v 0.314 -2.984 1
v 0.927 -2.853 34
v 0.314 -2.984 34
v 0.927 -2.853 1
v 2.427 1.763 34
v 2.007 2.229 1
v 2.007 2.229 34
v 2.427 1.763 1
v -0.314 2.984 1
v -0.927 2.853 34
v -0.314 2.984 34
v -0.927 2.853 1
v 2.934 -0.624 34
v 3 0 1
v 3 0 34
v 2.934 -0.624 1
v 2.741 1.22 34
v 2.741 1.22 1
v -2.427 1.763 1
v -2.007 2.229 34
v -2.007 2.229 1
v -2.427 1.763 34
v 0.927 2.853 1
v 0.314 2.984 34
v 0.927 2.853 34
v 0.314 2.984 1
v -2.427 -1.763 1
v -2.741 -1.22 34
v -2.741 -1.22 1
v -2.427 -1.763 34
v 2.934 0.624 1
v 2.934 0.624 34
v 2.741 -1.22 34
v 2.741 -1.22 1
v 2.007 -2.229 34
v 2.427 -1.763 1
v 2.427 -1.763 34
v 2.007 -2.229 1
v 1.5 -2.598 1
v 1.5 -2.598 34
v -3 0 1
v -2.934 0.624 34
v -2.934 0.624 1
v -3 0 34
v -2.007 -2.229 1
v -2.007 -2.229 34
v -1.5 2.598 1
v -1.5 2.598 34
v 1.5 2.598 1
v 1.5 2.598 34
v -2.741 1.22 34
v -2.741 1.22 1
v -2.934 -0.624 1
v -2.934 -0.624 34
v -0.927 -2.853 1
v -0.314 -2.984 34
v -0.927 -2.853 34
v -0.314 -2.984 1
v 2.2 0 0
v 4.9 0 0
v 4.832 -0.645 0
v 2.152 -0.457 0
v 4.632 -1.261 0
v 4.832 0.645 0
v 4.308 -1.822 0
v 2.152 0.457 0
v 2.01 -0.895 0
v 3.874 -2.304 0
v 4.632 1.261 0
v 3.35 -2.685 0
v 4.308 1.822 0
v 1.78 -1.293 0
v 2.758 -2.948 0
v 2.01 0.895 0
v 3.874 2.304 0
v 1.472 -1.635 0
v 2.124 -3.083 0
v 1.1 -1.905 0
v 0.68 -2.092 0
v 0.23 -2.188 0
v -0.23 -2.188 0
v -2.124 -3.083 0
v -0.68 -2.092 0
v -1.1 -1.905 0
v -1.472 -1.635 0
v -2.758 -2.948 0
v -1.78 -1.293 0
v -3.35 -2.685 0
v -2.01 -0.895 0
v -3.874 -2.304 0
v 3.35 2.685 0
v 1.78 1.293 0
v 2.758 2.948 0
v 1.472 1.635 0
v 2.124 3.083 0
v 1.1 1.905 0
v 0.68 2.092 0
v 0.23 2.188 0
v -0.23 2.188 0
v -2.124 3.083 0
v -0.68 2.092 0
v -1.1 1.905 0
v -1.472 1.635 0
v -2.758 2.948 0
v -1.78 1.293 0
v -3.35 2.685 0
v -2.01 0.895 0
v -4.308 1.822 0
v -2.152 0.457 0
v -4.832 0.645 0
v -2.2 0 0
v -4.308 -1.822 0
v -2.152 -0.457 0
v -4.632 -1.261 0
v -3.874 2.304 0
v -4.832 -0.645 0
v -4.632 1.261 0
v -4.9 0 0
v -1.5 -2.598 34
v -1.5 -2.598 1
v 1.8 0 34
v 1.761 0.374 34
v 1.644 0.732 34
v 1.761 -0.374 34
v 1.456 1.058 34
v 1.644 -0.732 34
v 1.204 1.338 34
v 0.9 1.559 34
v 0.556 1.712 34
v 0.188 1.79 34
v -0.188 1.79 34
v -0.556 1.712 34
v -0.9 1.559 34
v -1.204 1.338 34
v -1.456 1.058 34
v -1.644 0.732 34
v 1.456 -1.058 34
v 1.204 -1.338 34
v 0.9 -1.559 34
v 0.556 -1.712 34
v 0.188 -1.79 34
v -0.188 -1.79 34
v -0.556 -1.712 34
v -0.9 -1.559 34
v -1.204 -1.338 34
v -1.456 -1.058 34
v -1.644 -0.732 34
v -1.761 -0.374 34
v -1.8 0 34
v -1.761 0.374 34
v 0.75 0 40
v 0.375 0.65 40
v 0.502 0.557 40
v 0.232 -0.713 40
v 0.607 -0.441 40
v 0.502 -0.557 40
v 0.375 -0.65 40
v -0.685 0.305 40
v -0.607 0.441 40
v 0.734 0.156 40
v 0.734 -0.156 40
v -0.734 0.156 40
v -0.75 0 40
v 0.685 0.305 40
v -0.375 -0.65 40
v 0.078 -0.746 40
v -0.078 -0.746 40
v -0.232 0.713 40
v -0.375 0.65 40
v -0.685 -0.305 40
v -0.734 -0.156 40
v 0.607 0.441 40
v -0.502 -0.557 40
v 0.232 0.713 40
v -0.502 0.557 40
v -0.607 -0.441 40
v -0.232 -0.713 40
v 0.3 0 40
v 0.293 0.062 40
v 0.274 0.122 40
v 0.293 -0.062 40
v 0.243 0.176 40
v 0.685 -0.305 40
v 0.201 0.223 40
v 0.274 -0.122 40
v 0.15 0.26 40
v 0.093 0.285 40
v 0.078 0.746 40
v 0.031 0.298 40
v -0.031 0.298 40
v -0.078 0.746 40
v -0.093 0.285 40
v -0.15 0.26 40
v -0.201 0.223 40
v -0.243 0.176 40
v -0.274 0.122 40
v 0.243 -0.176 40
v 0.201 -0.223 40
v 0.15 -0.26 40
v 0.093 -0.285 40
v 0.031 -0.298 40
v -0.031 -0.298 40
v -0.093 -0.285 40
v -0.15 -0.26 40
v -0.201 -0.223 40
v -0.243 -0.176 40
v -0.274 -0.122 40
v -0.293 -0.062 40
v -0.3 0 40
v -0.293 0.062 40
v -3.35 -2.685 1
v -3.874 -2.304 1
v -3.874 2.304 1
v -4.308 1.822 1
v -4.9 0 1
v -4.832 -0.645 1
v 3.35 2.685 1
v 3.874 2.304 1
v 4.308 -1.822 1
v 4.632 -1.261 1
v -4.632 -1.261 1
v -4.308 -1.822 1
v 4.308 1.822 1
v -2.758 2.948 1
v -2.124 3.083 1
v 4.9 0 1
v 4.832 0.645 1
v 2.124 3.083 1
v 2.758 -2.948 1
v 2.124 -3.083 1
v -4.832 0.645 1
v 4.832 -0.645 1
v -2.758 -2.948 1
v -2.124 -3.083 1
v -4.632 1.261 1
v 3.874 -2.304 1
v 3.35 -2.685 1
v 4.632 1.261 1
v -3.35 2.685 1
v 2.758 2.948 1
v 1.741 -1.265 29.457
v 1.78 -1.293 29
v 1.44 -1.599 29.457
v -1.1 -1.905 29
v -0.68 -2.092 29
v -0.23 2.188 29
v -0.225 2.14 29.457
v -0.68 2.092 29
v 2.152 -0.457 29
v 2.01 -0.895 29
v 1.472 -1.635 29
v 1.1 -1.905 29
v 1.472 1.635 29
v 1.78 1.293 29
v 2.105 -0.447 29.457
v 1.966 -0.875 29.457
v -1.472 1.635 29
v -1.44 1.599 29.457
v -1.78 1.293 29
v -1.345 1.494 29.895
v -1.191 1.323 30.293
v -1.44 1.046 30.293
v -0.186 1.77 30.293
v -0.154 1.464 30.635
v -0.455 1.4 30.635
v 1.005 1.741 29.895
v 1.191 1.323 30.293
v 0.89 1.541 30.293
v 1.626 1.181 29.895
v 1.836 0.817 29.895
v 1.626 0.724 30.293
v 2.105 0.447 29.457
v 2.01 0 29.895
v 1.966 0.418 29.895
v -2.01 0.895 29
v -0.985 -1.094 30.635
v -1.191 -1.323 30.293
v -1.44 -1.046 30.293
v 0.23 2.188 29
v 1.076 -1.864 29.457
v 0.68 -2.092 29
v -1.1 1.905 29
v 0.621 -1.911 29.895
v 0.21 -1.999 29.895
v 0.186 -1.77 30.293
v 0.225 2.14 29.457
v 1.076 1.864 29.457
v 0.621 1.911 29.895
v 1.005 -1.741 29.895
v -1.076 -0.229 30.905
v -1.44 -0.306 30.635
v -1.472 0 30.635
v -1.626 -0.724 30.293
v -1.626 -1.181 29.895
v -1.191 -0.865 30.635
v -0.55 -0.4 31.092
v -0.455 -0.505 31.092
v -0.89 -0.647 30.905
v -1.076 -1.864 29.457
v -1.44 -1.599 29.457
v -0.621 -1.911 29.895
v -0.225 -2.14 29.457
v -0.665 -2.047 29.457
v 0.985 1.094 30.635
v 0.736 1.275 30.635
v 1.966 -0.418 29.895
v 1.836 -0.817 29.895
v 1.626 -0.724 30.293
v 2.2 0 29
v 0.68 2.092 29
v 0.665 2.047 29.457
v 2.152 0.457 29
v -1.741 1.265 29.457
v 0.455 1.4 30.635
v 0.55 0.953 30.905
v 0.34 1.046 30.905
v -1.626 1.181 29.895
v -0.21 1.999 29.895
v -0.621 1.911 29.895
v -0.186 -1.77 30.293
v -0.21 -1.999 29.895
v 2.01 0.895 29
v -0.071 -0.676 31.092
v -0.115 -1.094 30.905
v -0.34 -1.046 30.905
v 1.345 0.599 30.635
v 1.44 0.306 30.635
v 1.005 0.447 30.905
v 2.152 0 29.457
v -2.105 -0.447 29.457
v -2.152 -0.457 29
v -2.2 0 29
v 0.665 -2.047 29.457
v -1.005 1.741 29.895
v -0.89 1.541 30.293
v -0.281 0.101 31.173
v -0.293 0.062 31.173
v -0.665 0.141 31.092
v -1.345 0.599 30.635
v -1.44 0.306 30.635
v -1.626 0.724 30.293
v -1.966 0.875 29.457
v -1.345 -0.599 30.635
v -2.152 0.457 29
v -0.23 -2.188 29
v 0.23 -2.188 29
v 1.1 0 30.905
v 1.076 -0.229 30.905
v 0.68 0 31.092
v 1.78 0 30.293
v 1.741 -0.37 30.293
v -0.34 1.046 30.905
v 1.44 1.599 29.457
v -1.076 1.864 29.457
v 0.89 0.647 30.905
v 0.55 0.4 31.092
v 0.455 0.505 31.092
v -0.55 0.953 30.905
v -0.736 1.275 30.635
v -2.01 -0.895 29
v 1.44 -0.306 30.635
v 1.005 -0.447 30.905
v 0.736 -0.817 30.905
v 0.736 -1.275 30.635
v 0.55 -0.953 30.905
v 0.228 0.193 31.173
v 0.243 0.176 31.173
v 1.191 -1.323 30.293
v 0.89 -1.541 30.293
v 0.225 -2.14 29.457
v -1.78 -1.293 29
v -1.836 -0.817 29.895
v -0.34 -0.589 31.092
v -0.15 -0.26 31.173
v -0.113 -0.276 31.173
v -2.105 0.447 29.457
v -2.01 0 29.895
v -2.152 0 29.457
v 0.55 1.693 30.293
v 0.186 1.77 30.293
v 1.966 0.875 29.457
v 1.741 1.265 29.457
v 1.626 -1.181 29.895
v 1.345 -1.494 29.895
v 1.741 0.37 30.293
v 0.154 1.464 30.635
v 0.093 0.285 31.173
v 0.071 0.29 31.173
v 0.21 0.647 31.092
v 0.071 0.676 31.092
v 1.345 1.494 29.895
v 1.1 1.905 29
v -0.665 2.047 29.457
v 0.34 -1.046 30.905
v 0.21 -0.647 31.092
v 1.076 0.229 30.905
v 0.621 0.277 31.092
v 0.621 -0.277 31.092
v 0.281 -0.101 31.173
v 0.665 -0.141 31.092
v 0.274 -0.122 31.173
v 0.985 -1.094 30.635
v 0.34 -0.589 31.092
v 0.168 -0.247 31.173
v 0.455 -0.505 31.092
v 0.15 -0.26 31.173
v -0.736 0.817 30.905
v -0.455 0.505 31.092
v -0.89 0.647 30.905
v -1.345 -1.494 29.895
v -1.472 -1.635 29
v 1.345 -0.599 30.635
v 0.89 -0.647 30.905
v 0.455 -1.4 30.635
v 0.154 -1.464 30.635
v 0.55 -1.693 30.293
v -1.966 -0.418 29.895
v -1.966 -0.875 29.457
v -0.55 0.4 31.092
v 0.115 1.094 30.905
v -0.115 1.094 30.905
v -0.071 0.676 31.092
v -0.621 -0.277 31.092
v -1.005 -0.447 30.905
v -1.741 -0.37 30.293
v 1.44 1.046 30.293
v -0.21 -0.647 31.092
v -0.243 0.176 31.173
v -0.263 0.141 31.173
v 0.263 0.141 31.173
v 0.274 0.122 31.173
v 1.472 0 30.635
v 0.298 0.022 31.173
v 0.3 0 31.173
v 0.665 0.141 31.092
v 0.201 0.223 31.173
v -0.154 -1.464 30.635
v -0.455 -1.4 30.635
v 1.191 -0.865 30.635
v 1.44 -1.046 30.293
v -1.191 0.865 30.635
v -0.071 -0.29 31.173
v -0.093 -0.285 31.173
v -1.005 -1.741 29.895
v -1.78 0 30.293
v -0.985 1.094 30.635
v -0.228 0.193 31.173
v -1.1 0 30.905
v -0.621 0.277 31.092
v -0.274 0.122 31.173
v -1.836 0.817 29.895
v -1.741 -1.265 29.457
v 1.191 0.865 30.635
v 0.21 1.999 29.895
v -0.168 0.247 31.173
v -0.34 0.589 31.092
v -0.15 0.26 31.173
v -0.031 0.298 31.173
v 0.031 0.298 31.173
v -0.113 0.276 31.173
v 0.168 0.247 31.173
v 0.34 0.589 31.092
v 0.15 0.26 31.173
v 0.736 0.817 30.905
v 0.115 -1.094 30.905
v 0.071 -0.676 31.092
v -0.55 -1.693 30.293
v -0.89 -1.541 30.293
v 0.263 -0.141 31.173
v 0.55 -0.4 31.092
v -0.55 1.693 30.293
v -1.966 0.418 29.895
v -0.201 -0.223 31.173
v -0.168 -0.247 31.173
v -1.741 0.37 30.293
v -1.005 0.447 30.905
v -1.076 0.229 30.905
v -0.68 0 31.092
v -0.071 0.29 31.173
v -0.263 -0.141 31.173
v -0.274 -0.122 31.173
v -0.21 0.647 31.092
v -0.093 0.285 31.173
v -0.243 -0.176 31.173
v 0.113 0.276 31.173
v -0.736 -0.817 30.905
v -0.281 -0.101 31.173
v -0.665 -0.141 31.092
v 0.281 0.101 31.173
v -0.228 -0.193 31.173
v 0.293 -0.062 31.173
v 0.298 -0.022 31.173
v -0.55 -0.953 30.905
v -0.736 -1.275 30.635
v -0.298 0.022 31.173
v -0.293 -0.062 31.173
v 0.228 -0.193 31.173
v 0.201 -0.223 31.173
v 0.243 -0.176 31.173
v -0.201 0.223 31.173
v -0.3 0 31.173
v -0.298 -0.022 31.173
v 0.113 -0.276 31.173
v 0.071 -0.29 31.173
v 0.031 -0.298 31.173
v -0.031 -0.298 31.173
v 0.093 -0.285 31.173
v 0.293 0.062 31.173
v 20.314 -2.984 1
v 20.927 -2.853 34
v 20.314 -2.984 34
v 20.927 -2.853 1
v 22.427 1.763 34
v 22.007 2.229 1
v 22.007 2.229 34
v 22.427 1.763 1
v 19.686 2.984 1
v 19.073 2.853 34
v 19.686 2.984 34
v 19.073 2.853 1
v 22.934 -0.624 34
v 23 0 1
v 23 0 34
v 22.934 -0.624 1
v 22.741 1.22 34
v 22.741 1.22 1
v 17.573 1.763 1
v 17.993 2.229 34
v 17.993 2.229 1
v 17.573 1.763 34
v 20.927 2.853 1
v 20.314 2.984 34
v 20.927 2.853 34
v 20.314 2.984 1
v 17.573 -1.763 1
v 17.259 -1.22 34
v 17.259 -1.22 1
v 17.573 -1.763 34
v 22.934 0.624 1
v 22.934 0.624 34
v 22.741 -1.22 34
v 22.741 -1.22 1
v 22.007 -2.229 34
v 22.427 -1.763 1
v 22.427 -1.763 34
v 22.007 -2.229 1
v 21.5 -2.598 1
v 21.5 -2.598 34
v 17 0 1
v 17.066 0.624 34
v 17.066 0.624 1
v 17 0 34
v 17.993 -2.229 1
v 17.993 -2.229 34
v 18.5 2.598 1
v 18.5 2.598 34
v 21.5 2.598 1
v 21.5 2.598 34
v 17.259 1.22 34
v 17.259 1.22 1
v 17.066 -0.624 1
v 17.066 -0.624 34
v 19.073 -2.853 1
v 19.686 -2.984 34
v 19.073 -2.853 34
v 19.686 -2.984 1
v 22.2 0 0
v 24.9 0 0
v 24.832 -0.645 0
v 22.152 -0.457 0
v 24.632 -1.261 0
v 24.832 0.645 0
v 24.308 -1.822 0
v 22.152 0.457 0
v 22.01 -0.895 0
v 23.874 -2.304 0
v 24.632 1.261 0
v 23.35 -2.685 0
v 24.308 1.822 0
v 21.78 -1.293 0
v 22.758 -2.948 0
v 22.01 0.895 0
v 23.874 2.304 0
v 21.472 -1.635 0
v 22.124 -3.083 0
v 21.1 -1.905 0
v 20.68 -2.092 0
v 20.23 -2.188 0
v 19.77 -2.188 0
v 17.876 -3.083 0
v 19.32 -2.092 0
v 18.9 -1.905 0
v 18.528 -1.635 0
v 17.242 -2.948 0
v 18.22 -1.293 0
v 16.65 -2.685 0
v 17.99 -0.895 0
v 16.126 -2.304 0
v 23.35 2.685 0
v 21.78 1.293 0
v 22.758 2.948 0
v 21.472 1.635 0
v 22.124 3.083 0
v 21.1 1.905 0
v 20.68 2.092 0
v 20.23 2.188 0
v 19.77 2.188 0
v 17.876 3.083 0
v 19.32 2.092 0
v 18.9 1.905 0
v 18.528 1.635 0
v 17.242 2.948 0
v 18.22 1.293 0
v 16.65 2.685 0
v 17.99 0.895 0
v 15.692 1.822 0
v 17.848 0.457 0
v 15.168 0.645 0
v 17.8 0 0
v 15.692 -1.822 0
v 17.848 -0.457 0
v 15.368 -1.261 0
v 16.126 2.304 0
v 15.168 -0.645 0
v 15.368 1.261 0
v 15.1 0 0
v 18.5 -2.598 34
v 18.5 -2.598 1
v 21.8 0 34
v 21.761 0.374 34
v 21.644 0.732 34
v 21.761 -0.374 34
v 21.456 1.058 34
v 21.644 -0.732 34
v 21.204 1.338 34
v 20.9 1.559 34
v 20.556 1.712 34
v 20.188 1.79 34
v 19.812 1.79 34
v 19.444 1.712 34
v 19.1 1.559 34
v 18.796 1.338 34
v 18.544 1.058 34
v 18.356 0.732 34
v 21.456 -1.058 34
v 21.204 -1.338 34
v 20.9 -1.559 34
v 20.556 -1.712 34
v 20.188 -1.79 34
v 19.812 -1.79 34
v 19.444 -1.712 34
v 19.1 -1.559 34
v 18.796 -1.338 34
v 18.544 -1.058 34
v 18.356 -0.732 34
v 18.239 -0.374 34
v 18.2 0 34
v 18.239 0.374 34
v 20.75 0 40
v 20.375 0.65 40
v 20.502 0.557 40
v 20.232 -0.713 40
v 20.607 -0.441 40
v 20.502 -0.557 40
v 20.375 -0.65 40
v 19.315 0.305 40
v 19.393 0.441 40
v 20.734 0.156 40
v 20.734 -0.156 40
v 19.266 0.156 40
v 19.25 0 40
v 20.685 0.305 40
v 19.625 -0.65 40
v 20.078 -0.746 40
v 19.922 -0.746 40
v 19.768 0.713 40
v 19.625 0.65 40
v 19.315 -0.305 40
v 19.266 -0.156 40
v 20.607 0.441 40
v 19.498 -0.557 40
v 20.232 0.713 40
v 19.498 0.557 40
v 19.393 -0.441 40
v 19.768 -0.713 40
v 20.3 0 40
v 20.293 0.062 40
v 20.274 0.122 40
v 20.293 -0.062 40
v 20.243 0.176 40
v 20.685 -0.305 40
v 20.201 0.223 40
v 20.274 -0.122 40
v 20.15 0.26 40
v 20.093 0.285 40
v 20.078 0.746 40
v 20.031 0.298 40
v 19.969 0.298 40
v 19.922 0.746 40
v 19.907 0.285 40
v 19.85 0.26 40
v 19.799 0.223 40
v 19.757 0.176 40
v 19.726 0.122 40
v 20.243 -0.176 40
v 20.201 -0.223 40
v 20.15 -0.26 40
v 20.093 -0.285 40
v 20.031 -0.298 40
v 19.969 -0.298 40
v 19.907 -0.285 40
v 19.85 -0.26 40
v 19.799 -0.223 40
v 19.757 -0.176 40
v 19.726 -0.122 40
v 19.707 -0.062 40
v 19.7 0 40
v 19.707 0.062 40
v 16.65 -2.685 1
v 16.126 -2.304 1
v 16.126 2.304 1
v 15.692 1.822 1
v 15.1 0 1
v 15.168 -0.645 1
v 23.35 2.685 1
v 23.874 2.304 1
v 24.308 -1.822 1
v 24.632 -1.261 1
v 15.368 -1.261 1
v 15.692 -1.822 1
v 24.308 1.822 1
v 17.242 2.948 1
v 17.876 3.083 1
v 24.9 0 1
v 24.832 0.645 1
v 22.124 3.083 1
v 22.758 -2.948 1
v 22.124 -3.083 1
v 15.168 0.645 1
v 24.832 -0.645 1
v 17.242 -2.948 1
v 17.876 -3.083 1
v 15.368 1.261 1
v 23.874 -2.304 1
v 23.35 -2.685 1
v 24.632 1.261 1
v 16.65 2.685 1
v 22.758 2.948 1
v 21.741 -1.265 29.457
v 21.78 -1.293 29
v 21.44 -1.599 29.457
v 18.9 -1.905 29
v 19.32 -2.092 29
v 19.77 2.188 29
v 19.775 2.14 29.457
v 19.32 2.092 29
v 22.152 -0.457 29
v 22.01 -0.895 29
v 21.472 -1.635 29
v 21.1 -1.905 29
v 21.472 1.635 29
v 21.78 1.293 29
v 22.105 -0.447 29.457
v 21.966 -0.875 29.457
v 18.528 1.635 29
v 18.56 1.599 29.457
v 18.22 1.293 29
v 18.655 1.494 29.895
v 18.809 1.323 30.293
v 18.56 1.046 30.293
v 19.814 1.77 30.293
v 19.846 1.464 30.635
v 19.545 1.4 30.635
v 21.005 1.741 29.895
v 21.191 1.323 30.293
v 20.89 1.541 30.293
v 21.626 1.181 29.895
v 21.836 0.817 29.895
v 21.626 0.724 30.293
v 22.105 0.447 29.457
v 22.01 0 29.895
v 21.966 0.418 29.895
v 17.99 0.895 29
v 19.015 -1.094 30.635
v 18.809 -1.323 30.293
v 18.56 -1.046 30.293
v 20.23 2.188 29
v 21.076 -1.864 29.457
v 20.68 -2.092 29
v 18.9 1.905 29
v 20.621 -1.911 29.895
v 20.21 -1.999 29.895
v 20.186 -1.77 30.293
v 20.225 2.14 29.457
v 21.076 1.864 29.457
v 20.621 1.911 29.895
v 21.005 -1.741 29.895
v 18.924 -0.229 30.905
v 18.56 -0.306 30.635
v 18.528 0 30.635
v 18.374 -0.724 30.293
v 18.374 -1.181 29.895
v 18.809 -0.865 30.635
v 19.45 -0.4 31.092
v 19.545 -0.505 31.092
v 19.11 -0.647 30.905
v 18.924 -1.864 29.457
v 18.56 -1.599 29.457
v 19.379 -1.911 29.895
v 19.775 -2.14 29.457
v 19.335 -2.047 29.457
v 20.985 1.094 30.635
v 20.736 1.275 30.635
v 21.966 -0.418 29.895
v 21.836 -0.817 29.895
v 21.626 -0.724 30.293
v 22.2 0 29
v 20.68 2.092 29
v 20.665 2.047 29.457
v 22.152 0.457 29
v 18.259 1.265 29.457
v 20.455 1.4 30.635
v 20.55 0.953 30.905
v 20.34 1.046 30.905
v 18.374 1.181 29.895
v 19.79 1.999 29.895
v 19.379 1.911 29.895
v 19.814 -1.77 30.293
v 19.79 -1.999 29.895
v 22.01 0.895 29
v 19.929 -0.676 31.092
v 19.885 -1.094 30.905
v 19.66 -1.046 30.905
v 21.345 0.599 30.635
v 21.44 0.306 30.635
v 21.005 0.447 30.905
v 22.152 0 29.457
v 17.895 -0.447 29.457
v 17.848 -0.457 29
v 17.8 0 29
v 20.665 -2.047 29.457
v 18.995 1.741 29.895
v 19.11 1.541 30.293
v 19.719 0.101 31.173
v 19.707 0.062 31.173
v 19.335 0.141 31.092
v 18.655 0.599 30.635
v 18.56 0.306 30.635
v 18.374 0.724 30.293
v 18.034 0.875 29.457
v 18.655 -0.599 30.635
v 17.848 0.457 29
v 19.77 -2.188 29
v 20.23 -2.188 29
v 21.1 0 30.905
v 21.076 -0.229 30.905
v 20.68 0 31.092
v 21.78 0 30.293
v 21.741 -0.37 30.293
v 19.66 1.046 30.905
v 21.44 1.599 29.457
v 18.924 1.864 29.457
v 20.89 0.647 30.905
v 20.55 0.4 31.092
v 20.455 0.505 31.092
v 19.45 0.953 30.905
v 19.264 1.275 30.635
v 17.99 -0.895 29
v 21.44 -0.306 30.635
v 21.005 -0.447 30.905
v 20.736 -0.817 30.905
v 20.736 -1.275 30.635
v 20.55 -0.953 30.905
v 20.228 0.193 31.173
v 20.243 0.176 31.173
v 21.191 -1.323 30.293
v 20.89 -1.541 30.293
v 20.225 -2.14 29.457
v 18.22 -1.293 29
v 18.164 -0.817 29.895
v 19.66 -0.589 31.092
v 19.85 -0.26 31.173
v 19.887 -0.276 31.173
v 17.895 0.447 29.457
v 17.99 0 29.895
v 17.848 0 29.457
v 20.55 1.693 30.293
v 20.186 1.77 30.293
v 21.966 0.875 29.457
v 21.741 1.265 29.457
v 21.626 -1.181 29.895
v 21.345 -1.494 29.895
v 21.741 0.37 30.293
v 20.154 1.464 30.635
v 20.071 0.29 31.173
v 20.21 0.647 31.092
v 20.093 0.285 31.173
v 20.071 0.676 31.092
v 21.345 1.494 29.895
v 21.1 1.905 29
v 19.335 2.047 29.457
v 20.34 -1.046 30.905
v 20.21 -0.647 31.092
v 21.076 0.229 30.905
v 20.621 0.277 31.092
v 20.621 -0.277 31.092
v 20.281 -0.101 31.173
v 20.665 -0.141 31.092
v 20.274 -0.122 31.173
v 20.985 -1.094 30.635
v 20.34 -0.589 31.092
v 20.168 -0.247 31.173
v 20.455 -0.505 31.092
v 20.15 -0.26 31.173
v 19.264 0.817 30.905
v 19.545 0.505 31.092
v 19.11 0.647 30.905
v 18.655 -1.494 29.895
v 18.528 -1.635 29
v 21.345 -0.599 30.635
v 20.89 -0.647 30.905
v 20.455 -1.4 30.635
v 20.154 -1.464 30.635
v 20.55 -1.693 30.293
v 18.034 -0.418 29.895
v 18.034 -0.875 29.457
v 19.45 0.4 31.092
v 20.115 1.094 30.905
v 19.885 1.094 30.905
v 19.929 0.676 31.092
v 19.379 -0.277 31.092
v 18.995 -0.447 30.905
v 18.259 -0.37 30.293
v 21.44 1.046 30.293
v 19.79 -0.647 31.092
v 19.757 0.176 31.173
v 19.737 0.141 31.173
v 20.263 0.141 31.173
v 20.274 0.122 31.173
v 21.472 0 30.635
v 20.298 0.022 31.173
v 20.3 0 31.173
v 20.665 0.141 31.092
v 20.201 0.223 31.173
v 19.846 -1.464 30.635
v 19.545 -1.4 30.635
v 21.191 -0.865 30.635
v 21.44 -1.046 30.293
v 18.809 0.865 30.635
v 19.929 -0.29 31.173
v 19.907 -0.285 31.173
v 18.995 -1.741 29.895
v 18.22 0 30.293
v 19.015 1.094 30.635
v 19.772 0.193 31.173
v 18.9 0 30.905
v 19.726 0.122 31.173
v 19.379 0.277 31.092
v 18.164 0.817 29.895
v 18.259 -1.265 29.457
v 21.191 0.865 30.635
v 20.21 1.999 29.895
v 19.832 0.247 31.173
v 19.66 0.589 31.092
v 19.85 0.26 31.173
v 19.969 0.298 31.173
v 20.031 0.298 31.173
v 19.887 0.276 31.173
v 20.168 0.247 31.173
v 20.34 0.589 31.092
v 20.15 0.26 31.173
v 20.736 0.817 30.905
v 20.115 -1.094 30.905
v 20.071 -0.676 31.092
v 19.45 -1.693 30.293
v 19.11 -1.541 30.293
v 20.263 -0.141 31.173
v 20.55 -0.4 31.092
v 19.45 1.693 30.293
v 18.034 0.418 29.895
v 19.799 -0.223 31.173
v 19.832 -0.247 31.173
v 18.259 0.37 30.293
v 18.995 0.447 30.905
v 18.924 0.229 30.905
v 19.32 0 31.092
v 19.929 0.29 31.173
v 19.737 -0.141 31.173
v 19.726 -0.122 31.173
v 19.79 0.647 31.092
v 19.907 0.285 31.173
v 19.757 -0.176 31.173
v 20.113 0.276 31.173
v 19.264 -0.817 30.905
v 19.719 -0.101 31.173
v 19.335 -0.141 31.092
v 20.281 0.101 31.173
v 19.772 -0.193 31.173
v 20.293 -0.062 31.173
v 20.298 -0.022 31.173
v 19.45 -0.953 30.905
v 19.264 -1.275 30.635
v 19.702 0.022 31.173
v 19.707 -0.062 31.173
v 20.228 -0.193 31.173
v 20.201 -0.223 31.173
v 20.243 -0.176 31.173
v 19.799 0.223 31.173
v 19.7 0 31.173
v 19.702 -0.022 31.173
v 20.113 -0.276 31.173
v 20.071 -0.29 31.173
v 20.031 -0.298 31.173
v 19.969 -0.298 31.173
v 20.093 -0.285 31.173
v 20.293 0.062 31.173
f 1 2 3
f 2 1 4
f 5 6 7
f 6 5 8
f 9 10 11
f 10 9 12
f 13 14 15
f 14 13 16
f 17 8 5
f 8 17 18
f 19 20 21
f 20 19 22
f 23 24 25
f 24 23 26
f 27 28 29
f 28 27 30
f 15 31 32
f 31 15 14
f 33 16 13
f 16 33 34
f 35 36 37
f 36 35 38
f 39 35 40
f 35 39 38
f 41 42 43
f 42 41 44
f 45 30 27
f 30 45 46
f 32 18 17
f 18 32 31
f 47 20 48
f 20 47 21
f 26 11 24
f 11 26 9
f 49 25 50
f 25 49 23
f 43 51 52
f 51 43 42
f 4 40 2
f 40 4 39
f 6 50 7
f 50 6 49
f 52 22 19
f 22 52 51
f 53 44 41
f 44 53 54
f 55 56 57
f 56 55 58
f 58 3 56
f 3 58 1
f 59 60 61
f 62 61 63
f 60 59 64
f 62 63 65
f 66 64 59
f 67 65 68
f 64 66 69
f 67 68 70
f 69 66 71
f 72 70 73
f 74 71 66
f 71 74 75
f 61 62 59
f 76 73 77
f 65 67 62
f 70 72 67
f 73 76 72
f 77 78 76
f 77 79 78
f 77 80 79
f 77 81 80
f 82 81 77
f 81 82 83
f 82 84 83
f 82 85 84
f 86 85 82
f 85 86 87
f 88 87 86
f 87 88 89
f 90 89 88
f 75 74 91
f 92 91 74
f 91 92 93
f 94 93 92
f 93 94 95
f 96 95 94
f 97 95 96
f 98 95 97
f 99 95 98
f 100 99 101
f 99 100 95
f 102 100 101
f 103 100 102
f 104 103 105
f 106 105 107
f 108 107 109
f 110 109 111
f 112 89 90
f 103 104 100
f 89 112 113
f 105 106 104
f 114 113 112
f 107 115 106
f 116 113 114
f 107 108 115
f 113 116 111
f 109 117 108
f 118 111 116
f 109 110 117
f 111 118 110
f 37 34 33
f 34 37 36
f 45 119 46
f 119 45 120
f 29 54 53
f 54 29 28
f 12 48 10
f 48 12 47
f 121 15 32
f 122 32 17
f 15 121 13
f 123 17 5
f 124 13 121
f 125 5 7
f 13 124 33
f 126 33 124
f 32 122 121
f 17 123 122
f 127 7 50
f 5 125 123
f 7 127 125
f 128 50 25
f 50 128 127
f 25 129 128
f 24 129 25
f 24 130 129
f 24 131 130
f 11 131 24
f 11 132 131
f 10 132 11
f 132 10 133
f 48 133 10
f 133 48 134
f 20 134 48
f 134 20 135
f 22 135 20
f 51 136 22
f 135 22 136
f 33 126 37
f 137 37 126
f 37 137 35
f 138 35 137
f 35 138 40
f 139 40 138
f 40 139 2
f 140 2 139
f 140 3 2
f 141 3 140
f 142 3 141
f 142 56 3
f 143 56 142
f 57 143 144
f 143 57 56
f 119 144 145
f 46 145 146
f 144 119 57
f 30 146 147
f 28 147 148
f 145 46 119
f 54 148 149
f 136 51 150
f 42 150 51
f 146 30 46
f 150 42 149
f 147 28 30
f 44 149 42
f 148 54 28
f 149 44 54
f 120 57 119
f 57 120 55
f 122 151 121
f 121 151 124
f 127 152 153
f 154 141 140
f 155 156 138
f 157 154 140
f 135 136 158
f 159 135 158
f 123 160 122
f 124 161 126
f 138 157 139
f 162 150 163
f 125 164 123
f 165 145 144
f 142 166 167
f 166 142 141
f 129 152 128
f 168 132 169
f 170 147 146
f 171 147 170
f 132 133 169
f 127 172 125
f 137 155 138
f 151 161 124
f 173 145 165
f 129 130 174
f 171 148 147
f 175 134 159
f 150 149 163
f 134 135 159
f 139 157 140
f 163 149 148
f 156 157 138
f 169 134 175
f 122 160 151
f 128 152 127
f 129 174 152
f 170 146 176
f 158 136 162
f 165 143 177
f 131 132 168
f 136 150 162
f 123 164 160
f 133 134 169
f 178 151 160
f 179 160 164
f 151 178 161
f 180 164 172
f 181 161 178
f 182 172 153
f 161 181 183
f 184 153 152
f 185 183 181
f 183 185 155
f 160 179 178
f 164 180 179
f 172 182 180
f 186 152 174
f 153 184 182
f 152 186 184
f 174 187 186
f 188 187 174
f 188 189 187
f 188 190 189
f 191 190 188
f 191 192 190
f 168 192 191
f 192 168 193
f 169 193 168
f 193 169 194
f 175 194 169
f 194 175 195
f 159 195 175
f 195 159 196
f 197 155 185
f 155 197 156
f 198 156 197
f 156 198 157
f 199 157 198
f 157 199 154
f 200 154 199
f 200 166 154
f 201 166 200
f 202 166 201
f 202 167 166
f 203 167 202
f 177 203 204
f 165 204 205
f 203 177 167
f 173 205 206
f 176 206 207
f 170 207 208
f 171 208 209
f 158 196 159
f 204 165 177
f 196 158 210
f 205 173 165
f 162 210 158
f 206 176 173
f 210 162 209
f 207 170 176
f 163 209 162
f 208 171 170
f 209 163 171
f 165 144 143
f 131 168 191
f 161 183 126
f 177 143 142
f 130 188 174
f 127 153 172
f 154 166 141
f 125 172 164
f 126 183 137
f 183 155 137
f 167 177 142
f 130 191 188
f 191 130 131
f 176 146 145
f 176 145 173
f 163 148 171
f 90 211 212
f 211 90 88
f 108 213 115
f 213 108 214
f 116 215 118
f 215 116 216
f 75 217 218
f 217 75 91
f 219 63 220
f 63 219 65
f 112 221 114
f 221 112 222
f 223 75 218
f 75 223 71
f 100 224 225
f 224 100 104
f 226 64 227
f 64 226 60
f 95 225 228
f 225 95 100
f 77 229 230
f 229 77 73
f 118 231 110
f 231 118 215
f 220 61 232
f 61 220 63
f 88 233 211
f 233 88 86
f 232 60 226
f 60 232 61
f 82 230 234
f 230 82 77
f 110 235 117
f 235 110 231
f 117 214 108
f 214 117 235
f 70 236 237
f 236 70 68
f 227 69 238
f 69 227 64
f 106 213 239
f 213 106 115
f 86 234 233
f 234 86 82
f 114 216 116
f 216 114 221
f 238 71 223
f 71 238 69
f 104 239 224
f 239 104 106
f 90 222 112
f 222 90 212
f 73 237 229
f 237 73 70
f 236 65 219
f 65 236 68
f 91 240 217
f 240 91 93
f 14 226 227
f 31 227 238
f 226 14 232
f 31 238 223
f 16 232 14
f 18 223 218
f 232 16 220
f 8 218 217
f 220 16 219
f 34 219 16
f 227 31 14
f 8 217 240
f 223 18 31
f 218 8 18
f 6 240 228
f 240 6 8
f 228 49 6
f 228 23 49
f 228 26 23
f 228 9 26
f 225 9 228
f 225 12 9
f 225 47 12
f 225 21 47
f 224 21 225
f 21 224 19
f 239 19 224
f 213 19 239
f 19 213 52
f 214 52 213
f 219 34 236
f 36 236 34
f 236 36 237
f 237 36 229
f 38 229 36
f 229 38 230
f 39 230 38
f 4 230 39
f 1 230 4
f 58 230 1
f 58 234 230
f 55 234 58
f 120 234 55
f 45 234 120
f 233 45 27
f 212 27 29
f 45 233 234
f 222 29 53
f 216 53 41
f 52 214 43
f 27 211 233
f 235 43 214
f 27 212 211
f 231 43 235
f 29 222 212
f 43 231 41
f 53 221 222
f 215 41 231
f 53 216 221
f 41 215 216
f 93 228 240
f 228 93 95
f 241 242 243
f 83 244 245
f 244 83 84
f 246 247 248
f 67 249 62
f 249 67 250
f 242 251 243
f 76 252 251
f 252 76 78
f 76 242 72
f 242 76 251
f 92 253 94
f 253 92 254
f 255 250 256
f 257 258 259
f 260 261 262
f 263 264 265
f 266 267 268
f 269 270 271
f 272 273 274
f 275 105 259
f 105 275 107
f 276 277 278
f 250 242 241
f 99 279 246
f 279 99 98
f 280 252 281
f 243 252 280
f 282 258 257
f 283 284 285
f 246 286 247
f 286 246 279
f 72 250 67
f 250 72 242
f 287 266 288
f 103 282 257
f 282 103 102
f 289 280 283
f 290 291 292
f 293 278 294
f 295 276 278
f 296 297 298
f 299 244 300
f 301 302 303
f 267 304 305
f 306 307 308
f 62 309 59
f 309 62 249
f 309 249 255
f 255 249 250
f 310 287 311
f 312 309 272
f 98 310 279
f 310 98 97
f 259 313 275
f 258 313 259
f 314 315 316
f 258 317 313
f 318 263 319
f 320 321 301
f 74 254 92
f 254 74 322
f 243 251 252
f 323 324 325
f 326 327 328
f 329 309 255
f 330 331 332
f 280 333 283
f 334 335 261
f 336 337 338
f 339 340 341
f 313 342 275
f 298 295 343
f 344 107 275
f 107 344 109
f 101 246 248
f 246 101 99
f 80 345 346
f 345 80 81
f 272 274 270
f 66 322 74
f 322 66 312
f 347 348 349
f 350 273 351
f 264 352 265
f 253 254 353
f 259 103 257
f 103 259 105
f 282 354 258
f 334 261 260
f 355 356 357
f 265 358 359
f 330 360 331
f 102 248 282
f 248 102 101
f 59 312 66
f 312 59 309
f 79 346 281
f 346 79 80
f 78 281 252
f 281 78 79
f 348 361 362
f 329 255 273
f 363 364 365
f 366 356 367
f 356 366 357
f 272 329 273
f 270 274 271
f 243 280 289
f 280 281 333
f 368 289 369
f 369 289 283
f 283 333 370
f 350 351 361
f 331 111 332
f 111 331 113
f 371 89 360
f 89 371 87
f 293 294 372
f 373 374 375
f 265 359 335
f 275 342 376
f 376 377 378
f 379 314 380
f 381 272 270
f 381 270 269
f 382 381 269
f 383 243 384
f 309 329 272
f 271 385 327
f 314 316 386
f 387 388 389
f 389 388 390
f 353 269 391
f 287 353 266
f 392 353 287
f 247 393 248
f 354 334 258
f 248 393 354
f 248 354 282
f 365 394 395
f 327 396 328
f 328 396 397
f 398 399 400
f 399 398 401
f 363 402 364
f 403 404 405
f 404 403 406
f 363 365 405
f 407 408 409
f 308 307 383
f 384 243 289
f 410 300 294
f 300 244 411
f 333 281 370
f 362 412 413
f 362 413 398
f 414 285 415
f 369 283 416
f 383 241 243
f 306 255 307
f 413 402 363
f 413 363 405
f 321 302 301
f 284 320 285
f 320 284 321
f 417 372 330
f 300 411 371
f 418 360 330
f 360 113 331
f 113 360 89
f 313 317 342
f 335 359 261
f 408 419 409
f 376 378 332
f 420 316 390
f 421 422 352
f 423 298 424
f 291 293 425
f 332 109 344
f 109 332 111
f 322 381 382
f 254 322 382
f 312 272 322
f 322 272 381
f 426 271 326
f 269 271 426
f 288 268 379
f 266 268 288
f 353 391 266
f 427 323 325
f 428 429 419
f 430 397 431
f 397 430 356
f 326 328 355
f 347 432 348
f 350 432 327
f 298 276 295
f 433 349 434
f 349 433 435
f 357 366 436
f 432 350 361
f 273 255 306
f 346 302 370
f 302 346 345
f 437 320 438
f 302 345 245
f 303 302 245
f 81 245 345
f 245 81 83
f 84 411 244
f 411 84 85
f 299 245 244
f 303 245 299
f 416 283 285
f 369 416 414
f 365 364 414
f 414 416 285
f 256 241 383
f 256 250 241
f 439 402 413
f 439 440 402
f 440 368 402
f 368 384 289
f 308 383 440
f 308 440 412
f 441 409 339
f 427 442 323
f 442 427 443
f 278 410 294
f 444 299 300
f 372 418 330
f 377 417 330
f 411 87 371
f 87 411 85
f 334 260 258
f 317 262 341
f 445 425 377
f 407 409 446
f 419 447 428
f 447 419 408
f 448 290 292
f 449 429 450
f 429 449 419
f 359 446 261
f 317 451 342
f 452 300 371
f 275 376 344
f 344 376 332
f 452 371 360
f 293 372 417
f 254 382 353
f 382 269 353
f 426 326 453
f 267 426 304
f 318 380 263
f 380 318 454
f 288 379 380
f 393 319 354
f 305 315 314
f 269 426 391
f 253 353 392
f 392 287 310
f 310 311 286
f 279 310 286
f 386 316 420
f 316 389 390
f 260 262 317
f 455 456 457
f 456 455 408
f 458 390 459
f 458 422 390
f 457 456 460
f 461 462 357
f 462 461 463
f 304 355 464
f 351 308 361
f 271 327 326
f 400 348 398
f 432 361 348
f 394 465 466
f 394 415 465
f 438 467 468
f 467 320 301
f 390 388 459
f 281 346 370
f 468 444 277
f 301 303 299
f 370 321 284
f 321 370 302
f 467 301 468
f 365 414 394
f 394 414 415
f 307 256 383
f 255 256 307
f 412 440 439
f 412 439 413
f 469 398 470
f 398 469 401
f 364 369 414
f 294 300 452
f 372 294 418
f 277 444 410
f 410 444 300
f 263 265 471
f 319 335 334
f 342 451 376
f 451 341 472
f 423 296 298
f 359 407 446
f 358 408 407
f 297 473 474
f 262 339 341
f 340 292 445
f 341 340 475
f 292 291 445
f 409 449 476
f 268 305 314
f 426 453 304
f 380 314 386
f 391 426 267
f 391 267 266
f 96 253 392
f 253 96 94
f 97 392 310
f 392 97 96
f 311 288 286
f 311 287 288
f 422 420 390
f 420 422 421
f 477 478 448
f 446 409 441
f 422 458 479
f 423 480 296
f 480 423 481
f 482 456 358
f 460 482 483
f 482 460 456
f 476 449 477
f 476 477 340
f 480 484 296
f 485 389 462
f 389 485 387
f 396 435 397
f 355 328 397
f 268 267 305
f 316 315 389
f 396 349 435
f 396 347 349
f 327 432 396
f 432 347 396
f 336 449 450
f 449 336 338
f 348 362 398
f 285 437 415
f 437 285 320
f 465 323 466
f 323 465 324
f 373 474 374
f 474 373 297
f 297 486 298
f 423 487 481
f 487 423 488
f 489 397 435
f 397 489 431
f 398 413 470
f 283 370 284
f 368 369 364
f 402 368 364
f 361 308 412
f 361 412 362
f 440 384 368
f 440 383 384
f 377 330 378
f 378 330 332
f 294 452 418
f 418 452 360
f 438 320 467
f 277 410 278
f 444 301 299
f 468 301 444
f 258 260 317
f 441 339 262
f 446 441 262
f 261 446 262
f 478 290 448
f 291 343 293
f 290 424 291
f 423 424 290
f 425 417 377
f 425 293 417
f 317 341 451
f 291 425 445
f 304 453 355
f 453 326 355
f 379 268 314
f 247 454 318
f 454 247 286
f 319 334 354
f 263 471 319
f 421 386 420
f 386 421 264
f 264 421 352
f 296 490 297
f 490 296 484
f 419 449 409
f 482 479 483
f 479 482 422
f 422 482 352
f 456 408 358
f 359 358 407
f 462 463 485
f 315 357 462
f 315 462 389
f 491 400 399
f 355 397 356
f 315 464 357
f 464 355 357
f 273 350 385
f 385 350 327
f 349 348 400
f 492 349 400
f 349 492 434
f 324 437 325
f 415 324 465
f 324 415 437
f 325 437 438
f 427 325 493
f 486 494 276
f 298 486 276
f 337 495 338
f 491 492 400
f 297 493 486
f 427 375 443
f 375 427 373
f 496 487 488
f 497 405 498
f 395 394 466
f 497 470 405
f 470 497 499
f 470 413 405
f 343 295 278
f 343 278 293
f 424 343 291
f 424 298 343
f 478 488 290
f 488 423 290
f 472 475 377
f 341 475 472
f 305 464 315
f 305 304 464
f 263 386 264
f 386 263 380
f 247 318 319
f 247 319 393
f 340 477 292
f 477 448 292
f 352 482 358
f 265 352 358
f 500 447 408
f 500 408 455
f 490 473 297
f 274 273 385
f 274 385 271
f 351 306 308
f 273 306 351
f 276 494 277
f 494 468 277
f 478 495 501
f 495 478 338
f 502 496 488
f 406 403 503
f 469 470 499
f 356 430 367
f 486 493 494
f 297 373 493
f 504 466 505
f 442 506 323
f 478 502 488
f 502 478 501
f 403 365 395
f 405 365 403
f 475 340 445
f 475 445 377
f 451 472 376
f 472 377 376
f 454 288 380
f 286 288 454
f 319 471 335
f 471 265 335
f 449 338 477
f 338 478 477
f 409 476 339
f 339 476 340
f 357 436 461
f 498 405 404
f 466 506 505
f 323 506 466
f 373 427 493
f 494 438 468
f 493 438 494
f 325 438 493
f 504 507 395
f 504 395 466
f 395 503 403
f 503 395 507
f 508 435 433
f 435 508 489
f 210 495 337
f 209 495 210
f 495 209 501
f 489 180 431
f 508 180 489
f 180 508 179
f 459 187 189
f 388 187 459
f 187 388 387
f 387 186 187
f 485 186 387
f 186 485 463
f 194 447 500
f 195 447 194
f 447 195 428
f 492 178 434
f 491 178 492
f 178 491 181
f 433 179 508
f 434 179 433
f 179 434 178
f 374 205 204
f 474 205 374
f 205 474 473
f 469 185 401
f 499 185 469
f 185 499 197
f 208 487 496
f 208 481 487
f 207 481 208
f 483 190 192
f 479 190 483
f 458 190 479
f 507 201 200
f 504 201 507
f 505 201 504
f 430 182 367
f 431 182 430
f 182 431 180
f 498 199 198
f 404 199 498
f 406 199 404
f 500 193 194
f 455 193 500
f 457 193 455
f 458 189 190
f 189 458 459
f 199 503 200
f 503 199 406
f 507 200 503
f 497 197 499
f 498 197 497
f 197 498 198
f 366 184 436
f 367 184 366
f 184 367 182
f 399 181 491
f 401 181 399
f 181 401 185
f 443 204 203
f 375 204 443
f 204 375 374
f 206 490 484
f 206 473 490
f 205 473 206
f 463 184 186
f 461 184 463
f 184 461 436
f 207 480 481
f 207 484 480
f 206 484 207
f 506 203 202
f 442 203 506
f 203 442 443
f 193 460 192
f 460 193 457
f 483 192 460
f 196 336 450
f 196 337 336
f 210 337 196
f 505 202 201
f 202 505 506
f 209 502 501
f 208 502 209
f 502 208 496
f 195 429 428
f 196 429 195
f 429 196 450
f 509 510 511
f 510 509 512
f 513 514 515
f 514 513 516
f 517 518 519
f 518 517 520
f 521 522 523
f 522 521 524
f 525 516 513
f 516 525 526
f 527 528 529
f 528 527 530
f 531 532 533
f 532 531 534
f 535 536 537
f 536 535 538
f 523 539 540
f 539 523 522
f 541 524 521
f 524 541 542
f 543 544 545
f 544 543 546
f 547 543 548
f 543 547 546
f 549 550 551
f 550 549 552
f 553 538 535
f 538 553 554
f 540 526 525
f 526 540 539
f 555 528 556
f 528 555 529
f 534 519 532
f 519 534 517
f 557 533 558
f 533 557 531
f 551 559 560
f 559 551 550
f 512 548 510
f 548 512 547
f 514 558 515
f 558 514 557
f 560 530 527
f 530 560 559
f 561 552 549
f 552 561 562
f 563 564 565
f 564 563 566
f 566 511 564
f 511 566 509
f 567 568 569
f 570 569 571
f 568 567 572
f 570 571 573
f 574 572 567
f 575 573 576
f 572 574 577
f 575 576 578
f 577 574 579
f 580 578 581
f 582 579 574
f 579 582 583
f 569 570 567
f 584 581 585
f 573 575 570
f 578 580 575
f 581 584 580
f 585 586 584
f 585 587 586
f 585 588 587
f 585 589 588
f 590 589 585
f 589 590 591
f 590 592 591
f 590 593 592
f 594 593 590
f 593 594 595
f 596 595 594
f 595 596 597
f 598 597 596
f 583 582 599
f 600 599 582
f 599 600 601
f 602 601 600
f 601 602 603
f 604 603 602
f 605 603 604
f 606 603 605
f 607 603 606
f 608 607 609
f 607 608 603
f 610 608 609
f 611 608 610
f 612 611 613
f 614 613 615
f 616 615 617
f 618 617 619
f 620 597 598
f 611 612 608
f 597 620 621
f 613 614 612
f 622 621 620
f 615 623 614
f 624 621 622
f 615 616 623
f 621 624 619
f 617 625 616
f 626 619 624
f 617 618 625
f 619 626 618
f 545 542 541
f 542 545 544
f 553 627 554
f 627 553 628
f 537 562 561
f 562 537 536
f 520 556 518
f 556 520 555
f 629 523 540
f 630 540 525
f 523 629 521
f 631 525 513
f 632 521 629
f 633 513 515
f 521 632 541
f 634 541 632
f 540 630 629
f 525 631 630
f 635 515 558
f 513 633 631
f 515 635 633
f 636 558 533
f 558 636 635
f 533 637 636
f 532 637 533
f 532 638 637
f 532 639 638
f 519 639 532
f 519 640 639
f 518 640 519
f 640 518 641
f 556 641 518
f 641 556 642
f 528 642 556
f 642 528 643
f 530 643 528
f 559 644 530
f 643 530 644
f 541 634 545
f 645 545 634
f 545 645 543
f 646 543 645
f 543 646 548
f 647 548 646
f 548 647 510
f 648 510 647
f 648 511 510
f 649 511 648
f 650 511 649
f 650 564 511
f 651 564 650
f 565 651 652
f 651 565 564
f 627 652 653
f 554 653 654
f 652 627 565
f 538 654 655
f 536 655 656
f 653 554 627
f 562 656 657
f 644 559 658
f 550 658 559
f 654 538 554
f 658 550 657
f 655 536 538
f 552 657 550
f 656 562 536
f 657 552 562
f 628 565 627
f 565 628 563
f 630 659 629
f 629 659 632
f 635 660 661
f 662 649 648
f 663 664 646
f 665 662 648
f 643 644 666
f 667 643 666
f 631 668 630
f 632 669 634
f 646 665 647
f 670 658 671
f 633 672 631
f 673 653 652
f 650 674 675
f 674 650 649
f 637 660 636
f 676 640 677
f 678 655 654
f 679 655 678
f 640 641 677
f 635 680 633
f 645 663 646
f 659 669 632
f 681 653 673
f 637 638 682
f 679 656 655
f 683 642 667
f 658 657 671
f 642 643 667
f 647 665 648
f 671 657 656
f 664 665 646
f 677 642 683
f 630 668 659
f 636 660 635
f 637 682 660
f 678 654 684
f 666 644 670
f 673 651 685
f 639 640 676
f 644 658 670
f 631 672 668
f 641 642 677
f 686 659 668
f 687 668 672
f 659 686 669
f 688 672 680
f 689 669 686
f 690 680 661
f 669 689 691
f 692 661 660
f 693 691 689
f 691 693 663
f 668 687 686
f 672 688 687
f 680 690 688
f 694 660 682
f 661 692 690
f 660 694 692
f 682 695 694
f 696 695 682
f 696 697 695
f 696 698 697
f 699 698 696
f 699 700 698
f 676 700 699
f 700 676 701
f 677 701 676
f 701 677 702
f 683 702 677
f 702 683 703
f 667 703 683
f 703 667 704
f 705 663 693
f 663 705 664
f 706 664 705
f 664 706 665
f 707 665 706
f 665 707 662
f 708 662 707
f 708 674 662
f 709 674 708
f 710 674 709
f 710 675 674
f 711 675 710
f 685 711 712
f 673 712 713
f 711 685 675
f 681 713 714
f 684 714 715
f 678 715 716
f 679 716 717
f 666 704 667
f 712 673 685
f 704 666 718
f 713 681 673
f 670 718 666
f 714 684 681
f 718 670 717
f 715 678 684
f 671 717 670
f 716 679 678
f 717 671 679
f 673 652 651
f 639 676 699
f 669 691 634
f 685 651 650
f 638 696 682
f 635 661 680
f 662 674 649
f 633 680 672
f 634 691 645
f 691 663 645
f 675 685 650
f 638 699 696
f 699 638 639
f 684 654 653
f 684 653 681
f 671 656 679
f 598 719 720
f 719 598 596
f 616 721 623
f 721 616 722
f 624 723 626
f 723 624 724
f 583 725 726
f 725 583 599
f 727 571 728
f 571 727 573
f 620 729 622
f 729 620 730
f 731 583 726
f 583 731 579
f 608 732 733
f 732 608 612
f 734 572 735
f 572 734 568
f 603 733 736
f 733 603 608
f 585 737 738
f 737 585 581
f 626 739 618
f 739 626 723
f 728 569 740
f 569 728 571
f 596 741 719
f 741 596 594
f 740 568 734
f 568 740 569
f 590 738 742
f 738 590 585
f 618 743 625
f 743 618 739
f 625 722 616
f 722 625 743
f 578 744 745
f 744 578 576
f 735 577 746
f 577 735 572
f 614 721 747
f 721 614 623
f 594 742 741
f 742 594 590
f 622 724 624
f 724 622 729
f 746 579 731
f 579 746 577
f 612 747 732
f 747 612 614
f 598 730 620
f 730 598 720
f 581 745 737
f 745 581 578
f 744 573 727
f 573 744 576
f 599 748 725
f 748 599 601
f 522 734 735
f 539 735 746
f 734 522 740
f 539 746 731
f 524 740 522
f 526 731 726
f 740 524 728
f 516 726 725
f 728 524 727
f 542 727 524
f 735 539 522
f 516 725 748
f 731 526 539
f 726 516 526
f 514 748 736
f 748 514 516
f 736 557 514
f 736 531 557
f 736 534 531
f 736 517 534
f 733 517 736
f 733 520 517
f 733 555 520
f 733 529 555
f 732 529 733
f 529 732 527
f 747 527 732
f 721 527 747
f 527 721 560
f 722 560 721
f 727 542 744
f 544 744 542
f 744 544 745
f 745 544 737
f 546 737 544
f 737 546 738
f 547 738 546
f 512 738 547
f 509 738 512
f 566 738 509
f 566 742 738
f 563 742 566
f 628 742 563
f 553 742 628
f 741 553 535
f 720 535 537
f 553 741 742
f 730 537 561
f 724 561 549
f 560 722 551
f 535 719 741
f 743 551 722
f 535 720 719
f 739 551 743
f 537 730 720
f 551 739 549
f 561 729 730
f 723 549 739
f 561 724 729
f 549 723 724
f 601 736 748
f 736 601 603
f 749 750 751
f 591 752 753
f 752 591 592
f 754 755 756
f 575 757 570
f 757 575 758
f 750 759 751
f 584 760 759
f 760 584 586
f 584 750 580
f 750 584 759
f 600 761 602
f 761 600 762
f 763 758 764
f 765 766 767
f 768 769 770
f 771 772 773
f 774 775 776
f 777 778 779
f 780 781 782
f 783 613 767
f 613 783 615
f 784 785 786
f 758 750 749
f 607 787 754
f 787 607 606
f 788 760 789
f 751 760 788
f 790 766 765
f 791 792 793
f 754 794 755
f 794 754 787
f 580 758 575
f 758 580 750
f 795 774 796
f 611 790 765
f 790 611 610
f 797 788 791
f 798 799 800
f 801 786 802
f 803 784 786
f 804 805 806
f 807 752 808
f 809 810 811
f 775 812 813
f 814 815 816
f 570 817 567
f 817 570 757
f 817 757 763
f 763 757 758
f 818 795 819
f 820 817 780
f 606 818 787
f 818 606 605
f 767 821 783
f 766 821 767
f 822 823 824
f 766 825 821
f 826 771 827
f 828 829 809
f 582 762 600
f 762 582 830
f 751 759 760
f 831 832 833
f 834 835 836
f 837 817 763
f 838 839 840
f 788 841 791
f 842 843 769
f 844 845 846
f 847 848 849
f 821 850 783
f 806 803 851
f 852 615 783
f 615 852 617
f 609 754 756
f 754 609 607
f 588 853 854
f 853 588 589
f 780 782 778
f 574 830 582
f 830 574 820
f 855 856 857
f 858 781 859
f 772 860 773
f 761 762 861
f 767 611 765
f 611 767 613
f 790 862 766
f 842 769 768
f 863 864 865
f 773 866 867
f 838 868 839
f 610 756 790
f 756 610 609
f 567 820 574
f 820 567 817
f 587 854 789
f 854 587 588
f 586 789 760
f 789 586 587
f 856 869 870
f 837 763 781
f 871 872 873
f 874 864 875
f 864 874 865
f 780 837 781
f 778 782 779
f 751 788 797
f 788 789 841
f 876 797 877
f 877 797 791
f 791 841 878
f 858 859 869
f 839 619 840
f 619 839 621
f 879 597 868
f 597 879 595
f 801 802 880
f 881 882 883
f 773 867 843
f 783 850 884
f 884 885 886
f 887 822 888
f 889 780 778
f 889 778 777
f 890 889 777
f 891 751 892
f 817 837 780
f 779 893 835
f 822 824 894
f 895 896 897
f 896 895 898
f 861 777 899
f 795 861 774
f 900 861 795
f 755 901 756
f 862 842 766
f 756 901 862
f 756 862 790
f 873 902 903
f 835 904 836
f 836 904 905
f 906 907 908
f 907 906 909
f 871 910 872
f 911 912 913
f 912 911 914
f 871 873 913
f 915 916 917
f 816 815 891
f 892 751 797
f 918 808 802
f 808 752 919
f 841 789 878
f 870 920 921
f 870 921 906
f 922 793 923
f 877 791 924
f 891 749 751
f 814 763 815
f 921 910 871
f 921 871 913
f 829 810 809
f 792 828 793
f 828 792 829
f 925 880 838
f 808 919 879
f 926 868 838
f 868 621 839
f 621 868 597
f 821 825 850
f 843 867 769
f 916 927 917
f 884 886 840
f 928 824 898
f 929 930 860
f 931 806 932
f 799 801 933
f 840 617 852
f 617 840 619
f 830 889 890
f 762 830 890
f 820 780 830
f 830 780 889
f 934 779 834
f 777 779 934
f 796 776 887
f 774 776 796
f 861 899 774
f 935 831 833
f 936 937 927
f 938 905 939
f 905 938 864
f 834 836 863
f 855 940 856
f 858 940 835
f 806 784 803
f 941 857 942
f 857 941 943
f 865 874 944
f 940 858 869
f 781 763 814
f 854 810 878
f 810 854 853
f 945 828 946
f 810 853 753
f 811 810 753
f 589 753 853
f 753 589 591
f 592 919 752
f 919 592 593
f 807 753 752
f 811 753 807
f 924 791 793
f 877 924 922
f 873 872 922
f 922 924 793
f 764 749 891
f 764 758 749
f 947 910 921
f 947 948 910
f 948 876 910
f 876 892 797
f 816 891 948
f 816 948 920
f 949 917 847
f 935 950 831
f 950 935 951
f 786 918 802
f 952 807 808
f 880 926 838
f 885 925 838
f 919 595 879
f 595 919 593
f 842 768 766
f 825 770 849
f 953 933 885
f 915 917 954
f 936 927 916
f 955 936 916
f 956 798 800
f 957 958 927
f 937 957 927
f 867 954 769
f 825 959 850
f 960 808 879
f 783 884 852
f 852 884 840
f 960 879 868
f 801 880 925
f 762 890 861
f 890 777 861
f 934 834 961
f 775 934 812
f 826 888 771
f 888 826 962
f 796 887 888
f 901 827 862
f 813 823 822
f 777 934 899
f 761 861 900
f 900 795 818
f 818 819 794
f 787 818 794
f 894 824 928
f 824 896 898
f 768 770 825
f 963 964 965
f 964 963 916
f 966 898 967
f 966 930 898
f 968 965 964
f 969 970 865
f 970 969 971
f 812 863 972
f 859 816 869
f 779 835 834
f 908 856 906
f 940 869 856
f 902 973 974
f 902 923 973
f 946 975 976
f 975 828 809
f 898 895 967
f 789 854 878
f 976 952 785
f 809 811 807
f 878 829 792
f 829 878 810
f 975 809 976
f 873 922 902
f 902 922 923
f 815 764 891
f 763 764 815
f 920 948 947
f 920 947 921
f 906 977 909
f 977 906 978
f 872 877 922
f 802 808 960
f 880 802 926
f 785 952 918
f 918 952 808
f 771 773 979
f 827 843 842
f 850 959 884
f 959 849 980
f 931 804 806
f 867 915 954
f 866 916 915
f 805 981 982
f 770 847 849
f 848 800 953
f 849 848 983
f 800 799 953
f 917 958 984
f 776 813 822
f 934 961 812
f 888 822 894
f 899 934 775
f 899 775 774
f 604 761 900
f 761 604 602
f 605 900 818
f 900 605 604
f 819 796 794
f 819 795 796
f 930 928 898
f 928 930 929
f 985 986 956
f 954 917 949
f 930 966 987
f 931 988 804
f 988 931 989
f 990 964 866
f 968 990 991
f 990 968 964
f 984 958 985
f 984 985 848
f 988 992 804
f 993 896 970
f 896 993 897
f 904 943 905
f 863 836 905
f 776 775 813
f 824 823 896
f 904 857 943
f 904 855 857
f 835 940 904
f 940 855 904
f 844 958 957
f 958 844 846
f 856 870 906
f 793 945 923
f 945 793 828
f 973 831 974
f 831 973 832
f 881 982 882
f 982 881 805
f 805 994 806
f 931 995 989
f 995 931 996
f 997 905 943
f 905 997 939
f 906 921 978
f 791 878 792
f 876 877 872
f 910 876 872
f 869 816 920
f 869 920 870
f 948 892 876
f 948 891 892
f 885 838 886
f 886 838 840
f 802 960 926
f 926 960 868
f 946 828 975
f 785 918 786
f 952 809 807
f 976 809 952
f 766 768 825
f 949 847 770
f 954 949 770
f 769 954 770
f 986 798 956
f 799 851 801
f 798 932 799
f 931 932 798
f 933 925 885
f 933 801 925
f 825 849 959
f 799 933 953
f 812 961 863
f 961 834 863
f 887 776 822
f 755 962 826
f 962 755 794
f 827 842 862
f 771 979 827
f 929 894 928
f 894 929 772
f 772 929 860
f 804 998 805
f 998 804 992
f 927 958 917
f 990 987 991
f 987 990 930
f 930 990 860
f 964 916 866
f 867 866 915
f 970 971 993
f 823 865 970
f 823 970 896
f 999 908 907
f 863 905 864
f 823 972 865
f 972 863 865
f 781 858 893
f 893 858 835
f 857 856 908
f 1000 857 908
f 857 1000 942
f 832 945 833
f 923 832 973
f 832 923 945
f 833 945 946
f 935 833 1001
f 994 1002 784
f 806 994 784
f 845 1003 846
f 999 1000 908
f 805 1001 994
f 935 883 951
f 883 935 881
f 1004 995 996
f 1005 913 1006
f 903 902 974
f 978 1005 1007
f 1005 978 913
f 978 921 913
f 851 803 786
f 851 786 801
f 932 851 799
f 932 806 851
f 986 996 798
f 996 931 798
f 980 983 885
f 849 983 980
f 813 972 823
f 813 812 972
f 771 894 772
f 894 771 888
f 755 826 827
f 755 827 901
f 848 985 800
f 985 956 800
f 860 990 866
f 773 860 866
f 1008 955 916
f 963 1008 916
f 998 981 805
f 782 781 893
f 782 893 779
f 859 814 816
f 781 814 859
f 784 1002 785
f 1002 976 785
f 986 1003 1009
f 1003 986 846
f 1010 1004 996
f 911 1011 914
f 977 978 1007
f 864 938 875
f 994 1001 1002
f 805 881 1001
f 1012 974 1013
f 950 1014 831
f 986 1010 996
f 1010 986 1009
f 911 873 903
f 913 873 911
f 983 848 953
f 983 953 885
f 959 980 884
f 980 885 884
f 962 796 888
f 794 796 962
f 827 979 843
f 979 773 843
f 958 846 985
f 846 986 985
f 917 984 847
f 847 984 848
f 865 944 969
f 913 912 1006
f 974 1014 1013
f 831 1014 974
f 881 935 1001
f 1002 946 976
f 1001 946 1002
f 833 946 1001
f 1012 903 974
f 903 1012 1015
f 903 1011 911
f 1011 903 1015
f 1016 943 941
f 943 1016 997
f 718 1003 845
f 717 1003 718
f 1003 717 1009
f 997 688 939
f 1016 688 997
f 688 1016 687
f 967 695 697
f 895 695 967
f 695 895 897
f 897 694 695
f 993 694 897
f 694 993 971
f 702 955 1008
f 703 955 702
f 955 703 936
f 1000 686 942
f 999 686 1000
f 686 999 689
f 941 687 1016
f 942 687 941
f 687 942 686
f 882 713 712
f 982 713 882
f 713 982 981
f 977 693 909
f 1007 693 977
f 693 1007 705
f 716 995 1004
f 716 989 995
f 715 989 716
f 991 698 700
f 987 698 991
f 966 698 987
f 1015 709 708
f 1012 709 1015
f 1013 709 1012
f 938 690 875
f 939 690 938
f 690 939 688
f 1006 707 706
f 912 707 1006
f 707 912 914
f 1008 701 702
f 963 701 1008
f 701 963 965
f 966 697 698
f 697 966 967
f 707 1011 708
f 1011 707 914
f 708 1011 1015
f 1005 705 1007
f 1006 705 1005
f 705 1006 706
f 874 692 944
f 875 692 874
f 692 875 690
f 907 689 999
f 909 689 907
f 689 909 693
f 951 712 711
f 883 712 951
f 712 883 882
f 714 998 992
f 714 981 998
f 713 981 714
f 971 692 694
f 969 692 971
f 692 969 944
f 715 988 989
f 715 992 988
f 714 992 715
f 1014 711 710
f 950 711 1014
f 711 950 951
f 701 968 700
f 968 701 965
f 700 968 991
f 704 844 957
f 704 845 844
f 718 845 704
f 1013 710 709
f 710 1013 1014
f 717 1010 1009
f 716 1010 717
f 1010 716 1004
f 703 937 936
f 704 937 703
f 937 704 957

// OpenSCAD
// file: syringe-prop.scad
$fn = 30;

HEIGHT = 40;
DIAMETER = 6;
WALL_THICKNESS = .8;
TOLERANCE = .3;

INNER_DIAMETER = DIAMETER - WALL_THICKNESS * 2;

module body_ext() {
    color("grey") {

        cylinder(d=DIAMETER, h=HEIGHT*.85);

        translate([0, 0, HEIGHT*.85])
        cylinder(d1=DIAMETER*.6, d2=DIAMETER*.25, h=HEIGHT*.15);

        hull() {
            translate([-DIAMETER*.3, 0, 0]) cylinder(d=DIAMETER+.2, h=1);
            translate([ DIAMETER*.3, 0, 0]) cylinder(d=DIAMETER+.2, h=1);
        }
    }
}

module body() {
    difference() {
        difference() {
            body_ext();

            hull() {
                cylinder(d=INNER_DIAMETER, h=1);
                translate([0, 0, HEIGHT*.8 - DIAMETER/2 ])
                sphere(d=INNER_DIAMETER);
            }
                
            cylinder(d=.6, h=HEIGHT);
        }
    }
}

module piston() {
    d = INNER_DIAMETER - TOLERANCE*2;
    d2 = d -.4;
    d3 = d+.5;

    cylinder(d=d2, h=HEIGHT);

    h = HEIGHT;
    translate([0, 0, h-2]) cylinder(d=d, h=2);
    translate([0, 0, h-1 ]) resize([d3, d3, d/3]) sphere();
    translate([0, 0, h-2-DIAMETER/2]) cylinder(d1=0, d2=d, h=DIAMETER/2);

    h2 = HEIGHT *.5;
    translate([0, 0, h2-2]) cylinder(d=d, h=2);
    translate([0, 0, h2-1 ]) resize([d3, d3, d/3]) sphere();
    translate([0, 0, h2-2-DIAMETER/2]) cylinder(d1=0, d2=d, h=DIAMETER/2);


    cylinder(d=DIAMETER*1.3, h=1);
}

difference() {
    body();
    //cube(HEIGHT*2);
}

translate([DIAMETER*3, 0, 0])
piston();
// main file
use <syringe-prop.scad>

body();

translate([20, 0, 0])
body();
